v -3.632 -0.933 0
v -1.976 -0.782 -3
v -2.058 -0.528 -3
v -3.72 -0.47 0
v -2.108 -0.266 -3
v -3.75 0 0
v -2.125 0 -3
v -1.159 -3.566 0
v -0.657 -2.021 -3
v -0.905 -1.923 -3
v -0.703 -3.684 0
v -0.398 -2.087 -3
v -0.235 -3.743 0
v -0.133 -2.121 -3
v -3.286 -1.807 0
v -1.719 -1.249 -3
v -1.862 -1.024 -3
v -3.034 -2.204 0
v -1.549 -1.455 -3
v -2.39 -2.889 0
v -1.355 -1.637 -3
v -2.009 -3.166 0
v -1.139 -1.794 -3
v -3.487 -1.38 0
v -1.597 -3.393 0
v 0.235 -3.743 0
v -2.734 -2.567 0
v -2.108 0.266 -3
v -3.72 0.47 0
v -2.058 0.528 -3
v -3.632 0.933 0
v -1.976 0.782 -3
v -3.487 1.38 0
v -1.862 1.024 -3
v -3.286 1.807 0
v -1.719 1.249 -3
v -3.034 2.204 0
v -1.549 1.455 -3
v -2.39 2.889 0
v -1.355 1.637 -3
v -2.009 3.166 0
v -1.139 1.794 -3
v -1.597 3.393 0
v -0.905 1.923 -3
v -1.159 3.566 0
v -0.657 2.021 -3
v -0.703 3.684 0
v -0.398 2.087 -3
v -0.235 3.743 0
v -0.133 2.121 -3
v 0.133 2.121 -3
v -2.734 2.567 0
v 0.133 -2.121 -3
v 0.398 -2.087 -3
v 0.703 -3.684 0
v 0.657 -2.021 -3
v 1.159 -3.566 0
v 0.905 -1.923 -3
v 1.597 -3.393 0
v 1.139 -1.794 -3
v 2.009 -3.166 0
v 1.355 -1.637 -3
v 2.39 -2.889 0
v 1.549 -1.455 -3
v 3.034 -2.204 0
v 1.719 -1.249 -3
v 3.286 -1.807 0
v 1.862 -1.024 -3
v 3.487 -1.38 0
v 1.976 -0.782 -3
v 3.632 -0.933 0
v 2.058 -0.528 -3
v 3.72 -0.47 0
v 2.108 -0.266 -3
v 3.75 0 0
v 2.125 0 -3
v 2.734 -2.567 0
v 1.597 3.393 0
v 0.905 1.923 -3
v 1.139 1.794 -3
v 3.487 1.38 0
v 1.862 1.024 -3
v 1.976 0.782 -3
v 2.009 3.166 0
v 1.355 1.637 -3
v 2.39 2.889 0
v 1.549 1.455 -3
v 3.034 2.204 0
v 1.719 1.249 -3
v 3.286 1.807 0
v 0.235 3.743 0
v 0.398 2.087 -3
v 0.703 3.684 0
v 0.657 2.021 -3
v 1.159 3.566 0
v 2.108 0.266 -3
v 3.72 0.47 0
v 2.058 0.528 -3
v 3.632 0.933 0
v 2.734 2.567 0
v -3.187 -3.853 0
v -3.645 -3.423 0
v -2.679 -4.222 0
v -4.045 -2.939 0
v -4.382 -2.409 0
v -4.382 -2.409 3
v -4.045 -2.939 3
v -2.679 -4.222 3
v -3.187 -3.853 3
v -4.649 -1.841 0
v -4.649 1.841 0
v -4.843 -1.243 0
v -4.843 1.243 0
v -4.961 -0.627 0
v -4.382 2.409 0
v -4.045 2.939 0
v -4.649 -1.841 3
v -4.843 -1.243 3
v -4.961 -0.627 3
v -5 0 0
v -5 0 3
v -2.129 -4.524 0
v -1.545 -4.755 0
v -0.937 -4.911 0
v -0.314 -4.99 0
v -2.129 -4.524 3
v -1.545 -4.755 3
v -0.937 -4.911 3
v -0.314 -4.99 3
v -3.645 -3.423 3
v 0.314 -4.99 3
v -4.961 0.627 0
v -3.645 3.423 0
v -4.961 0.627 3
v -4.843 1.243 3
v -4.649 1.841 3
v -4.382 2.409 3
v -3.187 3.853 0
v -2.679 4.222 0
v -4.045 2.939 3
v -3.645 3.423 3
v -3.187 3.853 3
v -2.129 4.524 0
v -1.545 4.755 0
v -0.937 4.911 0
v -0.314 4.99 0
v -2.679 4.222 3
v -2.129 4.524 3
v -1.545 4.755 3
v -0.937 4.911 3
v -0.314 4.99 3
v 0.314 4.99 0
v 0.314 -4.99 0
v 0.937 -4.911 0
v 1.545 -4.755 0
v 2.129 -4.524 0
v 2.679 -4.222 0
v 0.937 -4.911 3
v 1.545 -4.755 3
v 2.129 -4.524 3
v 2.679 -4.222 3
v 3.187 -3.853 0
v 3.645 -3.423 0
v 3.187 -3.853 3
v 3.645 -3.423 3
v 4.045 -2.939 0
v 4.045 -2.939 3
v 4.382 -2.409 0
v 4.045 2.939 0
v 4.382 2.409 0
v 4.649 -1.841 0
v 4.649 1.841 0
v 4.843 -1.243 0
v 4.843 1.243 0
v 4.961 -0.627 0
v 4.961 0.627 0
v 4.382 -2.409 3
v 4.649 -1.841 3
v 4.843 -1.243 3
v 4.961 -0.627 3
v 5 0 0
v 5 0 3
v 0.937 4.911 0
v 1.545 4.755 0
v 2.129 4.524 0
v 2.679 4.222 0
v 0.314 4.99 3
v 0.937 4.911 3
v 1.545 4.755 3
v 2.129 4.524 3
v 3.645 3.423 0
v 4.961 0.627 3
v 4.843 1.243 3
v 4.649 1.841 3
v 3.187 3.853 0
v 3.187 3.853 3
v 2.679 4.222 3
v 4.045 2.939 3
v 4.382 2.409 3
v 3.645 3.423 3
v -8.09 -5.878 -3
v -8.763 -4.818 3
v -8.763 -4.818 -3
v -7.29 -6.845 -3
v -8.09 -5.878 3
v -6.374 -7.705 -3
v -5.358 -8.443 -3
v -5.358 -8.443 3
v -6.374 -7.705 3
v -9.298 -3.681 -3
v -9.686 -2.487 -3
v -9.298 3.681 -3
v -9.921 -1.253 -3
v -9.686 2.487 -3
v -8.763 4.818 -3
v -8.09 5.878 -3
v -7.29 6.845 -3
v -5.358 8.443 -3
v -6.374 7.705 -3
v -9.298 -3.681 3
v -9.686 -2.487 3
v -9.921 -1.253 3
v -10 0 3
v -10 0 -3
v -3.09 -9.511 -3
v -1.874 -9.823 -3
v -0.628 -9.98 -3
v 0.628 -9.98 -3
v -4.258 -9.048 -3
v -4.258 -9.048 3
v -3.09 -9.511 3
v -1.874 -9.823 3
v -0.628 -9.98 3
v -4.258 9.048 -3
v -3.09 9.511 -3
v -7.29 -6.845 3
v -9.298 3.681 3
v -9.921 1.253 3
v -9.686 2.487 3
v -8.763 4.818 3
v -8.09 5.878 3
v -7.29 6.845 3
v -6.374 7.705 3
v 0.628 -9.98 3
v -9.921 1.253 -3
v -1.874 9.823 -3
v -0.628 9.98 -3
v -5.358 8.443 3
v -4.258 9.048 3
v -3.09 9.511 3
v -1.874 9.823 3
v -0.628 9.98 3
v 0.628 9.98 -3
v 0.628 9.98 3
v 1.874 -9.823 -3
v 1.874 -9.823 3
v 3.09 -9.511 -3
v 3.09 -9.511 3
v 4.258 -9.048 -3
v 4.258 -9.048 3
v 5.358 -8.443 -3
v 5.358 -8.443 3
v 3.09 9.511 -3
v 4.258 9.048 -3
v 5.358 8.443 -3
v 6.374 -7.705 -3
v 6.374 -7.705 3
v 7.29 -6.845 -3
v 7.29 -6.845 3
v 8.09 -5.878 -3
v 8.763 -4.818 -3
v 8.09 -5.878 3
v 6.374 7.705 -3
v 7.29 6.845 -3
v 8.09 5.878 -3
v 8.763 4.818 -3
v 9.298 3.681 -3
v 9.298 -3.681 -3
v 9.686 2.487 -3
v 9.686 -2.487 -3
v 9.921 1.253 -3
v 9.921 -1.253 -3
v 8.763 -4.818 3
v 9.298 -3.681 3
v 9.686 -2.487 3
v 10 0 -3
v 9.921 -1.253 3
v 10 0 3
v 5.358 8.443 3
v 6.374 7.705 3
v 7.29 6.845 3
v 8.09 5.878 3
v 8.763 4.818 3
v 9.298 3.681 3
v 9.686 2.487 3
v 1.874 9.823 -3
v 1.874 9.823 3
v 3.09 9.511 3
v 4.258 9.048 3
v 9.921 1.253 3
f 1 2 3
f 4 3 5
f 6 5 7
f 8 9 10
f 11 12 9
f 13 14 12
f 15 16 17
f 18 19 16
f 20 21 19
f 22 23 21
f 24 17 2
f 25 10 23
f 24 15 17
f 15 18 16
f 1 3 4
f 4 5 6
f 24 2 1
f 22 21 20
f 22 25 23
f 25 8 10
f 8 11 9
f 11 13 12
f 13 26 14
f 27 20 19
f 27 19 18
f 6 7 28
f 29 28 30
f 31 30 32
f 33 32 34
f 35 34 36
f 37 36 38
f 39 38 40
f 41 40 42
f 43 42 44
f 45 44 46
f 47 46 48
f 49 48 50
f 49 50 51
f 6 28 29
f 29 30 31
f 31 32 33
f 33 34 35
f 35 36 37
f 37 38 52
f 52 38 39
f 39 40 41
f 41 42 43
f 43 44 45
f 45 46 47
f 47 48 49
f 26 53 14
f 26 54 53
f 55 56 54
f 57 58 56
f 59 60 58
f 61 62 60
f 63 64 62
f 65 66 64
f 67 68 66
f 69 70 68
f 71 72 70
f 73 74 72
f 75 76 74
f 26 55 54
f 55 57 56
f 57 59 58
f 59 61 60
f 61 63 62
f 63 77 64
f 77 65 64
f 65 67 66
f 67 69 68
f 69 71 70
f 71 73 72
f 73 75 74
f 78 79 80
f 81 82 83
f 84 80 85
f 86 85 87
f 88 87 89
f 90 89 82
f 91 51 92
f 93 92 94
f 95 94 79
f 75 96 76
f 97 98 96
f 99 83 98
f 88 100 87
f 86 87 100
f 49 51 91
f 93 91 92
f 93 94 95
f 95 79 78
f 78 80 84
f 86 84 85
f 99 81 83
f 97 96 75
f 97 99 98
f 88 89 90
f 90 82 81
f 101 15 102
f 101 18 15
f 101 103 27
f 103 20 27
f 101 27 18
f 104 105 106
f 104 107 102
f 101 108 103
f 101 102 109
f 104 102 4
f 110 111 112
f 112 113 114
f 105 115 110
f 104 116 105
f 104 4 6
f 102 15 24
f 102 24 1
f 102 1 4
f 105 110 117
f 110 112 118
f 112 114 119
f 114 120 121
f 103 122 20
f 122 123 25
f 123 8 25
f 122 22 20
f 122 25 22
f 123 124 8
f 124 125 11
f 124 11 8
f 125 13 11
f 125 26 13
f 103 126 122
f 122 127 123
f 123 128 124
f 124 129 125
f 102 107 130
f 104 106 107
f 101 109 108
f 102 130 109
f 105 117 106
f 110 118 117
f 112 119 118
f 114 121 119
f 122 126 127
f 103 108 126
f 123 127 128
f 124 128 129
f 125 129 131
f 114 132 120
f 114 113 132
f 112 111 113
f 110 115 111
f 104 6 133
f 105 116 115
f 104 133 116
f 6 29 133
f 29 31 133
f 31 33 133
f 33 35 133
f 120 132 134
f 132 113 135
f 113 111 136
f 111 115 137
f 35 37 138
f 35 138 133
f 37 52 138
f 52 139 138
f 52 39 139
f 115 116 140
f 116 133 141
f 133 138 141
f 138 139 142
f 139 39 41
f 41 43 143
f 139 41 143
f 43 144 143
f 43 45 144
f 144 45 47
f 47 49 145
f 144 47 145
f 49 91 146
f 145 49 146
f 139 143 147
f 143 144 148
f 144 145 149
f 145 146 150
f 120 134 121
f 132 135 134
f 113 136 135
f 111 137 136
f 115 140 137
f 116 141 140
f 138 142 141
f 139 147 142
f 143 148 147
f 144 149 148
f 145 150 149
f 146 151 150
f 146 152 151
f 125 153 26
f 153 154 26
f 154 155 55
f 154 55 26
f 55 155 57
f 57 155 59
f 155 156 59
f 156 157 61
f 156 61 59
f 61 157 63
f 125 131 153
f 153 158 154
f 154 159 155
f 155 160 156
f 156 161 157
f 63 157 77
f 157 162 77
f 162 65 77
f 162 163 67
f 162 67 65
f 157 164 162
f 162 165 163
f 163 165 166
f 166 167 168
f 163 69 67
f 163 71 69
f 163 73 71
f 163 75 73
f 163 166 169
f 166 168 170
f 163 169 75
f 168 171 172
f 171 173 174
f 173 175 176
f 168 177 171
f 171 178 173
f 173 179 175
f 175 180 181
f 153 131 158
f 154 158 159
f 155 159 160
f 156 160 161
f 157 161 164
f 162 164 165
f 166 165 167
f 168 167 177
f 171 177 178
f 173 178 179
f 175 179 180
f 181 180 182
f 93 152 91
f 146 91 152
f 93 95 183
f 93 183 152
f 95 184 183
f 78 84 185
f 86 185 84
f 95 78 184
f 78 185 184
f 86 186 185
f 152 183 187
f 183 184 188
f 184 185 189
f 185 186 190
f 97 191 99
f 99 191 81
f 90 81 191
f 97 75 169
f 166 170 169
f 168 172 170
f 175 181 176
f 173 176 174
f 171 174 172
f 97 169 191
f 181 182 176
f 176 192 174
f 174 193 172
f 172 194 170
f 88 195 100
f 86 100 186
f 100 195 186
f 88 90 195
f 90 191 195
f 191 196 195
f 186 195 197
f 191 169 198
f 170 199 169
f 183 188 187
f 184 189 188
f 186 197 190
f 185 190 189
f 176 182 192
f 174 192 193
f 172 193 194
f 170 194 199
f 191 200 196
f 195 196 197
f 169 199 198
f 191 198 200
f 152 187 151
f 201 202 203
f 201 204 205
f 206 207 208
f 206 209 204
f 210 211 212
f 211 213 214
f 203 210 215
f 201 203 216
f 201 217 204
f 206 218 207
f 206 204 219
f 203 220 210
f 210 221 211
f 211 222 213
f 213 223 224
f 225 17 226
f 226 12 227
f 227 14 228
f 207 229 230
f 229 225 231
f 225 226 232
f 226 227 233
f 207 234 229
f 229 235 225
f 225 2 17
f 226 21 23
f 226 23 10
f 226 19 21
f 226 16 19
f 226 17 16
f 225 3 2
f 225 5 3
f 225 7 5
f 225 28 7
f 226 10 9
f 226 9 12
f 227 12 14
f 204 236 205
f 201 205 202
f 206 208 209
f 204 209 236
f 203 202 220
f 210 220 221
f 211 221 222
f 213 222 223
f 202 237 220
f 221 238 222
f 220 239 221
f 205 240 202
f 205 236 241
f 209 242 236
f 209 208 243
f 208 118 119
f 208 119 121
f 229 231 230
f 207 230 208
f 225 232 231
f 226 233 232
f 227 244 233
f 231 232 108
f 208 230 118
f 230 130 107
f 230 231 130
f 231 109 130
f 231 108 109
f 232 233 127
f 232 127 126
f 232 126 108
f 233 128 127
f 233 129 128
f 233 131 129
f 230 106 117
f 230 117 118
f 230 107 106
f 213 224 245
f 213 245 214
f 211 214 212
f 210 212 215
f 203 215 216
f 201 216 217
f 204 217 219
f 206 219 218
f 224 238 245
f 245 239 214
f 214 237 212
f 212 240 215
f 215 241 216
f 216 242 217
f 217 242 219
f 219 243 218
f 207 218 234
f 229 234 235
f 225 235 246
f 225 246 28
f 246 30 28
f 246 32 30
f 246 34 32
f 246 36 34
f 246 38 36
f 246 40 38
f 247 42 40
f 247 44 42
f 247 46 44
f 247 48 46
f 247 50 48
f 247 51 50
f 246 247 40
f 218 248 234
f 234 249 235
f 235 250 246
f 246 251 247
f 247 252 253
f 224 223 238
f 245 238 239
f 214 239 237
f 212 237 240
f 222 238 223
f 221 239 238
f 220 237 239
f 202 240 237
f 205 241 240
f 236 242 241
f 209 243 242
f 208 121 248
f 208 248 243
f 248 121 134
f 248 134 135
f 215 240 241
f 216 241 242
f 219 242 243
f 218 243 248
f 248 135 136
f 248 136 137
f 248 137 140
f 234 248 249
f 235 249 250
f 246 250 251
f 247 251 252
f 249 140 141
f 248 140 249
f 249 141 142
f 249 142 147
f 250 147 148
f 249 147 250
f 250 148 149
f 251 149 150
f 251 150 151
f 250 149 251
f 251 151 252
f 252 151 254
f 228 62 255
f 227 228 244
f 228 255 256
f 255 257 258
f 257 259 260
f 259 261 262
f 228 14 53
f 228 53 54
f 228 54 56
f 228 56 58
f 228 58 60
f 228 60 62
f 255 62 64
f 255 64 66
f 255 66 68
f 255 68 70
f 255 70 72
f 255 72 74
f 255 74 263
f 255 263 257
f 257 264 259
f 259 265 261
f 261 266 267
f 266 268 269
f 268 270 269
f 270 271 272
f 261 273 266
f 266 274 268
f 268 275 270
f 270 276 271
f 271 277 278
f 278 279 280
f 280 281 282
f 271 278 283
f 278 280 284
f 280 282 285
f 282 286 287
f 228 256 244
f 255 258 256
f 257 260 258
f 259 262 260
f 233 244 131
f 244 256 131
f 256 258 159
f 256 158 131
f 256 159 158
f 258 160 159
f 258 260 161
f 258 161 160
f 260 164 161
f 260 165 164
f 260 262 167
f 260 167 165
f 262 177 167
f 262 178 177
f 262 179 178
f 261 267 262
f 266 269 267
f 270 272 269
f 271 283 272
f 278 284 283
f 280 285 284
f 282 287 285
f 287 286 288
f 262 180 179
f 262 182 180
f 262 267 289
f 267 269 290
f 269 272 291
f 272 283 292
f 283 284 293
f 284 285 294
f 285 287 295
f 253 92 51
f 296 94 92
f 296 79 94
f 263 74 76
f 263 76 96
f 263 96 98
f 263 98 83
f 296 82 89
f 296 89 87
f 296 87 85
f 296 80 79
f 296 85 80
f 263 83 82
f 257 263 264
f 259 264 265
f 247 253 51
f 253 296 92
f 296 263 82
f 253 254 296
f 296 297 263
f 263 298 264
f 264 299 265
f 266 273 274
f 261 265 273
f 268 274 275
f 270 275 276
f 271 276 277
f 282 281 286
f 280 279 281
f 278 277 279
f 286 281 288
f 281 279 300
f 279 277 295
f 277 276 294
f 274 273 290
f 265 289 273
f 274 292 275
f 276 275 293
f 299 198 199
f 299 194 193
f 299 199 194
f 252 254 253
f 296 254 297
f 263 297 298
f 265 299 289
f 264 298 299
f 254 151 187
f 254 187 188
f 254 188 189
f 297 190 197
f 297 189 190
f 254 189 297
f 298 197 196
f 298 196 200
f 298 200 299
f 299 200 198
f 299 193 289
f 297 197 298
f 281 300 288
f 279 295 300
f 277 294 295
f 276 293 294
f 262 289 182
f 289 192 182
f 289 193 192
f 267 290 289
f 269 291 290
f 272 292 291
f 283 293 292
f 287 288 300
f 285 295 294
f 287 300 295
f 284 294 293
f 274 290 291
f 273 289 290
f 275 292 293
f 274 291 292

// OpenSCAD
$fn = 50;

difference() {
	union() {
		translate(v = [0, 0, -3.0]) {
			cylinder(h = 6, r = 10.0);
		}
	}
	union() {
		translate(v = [0, 0, 0]) {
			rotate(a = [0, 0, 0]) {
				difference() {
					union() {
						translate(v = [0, 0, -6.0]) {
							cylinder(h = 6, r = 2.0);
						}
						translate(v = [0, 0, -3]) {
							cylinder(h = 3, r1 = 2.125, r2 = 3.75);
						}
						translate(v = [0, 0, -6.0]) {
							cylinder(h = 6, r = 2.125);
						}
						translate(v = [0, 0, -6.0]) {
							cylinder(h = 6, r = 2.0);
						}
					}
					union();
				}
			}
		}
		#cylinder(h = 3, r = 5.0);
	}
}
